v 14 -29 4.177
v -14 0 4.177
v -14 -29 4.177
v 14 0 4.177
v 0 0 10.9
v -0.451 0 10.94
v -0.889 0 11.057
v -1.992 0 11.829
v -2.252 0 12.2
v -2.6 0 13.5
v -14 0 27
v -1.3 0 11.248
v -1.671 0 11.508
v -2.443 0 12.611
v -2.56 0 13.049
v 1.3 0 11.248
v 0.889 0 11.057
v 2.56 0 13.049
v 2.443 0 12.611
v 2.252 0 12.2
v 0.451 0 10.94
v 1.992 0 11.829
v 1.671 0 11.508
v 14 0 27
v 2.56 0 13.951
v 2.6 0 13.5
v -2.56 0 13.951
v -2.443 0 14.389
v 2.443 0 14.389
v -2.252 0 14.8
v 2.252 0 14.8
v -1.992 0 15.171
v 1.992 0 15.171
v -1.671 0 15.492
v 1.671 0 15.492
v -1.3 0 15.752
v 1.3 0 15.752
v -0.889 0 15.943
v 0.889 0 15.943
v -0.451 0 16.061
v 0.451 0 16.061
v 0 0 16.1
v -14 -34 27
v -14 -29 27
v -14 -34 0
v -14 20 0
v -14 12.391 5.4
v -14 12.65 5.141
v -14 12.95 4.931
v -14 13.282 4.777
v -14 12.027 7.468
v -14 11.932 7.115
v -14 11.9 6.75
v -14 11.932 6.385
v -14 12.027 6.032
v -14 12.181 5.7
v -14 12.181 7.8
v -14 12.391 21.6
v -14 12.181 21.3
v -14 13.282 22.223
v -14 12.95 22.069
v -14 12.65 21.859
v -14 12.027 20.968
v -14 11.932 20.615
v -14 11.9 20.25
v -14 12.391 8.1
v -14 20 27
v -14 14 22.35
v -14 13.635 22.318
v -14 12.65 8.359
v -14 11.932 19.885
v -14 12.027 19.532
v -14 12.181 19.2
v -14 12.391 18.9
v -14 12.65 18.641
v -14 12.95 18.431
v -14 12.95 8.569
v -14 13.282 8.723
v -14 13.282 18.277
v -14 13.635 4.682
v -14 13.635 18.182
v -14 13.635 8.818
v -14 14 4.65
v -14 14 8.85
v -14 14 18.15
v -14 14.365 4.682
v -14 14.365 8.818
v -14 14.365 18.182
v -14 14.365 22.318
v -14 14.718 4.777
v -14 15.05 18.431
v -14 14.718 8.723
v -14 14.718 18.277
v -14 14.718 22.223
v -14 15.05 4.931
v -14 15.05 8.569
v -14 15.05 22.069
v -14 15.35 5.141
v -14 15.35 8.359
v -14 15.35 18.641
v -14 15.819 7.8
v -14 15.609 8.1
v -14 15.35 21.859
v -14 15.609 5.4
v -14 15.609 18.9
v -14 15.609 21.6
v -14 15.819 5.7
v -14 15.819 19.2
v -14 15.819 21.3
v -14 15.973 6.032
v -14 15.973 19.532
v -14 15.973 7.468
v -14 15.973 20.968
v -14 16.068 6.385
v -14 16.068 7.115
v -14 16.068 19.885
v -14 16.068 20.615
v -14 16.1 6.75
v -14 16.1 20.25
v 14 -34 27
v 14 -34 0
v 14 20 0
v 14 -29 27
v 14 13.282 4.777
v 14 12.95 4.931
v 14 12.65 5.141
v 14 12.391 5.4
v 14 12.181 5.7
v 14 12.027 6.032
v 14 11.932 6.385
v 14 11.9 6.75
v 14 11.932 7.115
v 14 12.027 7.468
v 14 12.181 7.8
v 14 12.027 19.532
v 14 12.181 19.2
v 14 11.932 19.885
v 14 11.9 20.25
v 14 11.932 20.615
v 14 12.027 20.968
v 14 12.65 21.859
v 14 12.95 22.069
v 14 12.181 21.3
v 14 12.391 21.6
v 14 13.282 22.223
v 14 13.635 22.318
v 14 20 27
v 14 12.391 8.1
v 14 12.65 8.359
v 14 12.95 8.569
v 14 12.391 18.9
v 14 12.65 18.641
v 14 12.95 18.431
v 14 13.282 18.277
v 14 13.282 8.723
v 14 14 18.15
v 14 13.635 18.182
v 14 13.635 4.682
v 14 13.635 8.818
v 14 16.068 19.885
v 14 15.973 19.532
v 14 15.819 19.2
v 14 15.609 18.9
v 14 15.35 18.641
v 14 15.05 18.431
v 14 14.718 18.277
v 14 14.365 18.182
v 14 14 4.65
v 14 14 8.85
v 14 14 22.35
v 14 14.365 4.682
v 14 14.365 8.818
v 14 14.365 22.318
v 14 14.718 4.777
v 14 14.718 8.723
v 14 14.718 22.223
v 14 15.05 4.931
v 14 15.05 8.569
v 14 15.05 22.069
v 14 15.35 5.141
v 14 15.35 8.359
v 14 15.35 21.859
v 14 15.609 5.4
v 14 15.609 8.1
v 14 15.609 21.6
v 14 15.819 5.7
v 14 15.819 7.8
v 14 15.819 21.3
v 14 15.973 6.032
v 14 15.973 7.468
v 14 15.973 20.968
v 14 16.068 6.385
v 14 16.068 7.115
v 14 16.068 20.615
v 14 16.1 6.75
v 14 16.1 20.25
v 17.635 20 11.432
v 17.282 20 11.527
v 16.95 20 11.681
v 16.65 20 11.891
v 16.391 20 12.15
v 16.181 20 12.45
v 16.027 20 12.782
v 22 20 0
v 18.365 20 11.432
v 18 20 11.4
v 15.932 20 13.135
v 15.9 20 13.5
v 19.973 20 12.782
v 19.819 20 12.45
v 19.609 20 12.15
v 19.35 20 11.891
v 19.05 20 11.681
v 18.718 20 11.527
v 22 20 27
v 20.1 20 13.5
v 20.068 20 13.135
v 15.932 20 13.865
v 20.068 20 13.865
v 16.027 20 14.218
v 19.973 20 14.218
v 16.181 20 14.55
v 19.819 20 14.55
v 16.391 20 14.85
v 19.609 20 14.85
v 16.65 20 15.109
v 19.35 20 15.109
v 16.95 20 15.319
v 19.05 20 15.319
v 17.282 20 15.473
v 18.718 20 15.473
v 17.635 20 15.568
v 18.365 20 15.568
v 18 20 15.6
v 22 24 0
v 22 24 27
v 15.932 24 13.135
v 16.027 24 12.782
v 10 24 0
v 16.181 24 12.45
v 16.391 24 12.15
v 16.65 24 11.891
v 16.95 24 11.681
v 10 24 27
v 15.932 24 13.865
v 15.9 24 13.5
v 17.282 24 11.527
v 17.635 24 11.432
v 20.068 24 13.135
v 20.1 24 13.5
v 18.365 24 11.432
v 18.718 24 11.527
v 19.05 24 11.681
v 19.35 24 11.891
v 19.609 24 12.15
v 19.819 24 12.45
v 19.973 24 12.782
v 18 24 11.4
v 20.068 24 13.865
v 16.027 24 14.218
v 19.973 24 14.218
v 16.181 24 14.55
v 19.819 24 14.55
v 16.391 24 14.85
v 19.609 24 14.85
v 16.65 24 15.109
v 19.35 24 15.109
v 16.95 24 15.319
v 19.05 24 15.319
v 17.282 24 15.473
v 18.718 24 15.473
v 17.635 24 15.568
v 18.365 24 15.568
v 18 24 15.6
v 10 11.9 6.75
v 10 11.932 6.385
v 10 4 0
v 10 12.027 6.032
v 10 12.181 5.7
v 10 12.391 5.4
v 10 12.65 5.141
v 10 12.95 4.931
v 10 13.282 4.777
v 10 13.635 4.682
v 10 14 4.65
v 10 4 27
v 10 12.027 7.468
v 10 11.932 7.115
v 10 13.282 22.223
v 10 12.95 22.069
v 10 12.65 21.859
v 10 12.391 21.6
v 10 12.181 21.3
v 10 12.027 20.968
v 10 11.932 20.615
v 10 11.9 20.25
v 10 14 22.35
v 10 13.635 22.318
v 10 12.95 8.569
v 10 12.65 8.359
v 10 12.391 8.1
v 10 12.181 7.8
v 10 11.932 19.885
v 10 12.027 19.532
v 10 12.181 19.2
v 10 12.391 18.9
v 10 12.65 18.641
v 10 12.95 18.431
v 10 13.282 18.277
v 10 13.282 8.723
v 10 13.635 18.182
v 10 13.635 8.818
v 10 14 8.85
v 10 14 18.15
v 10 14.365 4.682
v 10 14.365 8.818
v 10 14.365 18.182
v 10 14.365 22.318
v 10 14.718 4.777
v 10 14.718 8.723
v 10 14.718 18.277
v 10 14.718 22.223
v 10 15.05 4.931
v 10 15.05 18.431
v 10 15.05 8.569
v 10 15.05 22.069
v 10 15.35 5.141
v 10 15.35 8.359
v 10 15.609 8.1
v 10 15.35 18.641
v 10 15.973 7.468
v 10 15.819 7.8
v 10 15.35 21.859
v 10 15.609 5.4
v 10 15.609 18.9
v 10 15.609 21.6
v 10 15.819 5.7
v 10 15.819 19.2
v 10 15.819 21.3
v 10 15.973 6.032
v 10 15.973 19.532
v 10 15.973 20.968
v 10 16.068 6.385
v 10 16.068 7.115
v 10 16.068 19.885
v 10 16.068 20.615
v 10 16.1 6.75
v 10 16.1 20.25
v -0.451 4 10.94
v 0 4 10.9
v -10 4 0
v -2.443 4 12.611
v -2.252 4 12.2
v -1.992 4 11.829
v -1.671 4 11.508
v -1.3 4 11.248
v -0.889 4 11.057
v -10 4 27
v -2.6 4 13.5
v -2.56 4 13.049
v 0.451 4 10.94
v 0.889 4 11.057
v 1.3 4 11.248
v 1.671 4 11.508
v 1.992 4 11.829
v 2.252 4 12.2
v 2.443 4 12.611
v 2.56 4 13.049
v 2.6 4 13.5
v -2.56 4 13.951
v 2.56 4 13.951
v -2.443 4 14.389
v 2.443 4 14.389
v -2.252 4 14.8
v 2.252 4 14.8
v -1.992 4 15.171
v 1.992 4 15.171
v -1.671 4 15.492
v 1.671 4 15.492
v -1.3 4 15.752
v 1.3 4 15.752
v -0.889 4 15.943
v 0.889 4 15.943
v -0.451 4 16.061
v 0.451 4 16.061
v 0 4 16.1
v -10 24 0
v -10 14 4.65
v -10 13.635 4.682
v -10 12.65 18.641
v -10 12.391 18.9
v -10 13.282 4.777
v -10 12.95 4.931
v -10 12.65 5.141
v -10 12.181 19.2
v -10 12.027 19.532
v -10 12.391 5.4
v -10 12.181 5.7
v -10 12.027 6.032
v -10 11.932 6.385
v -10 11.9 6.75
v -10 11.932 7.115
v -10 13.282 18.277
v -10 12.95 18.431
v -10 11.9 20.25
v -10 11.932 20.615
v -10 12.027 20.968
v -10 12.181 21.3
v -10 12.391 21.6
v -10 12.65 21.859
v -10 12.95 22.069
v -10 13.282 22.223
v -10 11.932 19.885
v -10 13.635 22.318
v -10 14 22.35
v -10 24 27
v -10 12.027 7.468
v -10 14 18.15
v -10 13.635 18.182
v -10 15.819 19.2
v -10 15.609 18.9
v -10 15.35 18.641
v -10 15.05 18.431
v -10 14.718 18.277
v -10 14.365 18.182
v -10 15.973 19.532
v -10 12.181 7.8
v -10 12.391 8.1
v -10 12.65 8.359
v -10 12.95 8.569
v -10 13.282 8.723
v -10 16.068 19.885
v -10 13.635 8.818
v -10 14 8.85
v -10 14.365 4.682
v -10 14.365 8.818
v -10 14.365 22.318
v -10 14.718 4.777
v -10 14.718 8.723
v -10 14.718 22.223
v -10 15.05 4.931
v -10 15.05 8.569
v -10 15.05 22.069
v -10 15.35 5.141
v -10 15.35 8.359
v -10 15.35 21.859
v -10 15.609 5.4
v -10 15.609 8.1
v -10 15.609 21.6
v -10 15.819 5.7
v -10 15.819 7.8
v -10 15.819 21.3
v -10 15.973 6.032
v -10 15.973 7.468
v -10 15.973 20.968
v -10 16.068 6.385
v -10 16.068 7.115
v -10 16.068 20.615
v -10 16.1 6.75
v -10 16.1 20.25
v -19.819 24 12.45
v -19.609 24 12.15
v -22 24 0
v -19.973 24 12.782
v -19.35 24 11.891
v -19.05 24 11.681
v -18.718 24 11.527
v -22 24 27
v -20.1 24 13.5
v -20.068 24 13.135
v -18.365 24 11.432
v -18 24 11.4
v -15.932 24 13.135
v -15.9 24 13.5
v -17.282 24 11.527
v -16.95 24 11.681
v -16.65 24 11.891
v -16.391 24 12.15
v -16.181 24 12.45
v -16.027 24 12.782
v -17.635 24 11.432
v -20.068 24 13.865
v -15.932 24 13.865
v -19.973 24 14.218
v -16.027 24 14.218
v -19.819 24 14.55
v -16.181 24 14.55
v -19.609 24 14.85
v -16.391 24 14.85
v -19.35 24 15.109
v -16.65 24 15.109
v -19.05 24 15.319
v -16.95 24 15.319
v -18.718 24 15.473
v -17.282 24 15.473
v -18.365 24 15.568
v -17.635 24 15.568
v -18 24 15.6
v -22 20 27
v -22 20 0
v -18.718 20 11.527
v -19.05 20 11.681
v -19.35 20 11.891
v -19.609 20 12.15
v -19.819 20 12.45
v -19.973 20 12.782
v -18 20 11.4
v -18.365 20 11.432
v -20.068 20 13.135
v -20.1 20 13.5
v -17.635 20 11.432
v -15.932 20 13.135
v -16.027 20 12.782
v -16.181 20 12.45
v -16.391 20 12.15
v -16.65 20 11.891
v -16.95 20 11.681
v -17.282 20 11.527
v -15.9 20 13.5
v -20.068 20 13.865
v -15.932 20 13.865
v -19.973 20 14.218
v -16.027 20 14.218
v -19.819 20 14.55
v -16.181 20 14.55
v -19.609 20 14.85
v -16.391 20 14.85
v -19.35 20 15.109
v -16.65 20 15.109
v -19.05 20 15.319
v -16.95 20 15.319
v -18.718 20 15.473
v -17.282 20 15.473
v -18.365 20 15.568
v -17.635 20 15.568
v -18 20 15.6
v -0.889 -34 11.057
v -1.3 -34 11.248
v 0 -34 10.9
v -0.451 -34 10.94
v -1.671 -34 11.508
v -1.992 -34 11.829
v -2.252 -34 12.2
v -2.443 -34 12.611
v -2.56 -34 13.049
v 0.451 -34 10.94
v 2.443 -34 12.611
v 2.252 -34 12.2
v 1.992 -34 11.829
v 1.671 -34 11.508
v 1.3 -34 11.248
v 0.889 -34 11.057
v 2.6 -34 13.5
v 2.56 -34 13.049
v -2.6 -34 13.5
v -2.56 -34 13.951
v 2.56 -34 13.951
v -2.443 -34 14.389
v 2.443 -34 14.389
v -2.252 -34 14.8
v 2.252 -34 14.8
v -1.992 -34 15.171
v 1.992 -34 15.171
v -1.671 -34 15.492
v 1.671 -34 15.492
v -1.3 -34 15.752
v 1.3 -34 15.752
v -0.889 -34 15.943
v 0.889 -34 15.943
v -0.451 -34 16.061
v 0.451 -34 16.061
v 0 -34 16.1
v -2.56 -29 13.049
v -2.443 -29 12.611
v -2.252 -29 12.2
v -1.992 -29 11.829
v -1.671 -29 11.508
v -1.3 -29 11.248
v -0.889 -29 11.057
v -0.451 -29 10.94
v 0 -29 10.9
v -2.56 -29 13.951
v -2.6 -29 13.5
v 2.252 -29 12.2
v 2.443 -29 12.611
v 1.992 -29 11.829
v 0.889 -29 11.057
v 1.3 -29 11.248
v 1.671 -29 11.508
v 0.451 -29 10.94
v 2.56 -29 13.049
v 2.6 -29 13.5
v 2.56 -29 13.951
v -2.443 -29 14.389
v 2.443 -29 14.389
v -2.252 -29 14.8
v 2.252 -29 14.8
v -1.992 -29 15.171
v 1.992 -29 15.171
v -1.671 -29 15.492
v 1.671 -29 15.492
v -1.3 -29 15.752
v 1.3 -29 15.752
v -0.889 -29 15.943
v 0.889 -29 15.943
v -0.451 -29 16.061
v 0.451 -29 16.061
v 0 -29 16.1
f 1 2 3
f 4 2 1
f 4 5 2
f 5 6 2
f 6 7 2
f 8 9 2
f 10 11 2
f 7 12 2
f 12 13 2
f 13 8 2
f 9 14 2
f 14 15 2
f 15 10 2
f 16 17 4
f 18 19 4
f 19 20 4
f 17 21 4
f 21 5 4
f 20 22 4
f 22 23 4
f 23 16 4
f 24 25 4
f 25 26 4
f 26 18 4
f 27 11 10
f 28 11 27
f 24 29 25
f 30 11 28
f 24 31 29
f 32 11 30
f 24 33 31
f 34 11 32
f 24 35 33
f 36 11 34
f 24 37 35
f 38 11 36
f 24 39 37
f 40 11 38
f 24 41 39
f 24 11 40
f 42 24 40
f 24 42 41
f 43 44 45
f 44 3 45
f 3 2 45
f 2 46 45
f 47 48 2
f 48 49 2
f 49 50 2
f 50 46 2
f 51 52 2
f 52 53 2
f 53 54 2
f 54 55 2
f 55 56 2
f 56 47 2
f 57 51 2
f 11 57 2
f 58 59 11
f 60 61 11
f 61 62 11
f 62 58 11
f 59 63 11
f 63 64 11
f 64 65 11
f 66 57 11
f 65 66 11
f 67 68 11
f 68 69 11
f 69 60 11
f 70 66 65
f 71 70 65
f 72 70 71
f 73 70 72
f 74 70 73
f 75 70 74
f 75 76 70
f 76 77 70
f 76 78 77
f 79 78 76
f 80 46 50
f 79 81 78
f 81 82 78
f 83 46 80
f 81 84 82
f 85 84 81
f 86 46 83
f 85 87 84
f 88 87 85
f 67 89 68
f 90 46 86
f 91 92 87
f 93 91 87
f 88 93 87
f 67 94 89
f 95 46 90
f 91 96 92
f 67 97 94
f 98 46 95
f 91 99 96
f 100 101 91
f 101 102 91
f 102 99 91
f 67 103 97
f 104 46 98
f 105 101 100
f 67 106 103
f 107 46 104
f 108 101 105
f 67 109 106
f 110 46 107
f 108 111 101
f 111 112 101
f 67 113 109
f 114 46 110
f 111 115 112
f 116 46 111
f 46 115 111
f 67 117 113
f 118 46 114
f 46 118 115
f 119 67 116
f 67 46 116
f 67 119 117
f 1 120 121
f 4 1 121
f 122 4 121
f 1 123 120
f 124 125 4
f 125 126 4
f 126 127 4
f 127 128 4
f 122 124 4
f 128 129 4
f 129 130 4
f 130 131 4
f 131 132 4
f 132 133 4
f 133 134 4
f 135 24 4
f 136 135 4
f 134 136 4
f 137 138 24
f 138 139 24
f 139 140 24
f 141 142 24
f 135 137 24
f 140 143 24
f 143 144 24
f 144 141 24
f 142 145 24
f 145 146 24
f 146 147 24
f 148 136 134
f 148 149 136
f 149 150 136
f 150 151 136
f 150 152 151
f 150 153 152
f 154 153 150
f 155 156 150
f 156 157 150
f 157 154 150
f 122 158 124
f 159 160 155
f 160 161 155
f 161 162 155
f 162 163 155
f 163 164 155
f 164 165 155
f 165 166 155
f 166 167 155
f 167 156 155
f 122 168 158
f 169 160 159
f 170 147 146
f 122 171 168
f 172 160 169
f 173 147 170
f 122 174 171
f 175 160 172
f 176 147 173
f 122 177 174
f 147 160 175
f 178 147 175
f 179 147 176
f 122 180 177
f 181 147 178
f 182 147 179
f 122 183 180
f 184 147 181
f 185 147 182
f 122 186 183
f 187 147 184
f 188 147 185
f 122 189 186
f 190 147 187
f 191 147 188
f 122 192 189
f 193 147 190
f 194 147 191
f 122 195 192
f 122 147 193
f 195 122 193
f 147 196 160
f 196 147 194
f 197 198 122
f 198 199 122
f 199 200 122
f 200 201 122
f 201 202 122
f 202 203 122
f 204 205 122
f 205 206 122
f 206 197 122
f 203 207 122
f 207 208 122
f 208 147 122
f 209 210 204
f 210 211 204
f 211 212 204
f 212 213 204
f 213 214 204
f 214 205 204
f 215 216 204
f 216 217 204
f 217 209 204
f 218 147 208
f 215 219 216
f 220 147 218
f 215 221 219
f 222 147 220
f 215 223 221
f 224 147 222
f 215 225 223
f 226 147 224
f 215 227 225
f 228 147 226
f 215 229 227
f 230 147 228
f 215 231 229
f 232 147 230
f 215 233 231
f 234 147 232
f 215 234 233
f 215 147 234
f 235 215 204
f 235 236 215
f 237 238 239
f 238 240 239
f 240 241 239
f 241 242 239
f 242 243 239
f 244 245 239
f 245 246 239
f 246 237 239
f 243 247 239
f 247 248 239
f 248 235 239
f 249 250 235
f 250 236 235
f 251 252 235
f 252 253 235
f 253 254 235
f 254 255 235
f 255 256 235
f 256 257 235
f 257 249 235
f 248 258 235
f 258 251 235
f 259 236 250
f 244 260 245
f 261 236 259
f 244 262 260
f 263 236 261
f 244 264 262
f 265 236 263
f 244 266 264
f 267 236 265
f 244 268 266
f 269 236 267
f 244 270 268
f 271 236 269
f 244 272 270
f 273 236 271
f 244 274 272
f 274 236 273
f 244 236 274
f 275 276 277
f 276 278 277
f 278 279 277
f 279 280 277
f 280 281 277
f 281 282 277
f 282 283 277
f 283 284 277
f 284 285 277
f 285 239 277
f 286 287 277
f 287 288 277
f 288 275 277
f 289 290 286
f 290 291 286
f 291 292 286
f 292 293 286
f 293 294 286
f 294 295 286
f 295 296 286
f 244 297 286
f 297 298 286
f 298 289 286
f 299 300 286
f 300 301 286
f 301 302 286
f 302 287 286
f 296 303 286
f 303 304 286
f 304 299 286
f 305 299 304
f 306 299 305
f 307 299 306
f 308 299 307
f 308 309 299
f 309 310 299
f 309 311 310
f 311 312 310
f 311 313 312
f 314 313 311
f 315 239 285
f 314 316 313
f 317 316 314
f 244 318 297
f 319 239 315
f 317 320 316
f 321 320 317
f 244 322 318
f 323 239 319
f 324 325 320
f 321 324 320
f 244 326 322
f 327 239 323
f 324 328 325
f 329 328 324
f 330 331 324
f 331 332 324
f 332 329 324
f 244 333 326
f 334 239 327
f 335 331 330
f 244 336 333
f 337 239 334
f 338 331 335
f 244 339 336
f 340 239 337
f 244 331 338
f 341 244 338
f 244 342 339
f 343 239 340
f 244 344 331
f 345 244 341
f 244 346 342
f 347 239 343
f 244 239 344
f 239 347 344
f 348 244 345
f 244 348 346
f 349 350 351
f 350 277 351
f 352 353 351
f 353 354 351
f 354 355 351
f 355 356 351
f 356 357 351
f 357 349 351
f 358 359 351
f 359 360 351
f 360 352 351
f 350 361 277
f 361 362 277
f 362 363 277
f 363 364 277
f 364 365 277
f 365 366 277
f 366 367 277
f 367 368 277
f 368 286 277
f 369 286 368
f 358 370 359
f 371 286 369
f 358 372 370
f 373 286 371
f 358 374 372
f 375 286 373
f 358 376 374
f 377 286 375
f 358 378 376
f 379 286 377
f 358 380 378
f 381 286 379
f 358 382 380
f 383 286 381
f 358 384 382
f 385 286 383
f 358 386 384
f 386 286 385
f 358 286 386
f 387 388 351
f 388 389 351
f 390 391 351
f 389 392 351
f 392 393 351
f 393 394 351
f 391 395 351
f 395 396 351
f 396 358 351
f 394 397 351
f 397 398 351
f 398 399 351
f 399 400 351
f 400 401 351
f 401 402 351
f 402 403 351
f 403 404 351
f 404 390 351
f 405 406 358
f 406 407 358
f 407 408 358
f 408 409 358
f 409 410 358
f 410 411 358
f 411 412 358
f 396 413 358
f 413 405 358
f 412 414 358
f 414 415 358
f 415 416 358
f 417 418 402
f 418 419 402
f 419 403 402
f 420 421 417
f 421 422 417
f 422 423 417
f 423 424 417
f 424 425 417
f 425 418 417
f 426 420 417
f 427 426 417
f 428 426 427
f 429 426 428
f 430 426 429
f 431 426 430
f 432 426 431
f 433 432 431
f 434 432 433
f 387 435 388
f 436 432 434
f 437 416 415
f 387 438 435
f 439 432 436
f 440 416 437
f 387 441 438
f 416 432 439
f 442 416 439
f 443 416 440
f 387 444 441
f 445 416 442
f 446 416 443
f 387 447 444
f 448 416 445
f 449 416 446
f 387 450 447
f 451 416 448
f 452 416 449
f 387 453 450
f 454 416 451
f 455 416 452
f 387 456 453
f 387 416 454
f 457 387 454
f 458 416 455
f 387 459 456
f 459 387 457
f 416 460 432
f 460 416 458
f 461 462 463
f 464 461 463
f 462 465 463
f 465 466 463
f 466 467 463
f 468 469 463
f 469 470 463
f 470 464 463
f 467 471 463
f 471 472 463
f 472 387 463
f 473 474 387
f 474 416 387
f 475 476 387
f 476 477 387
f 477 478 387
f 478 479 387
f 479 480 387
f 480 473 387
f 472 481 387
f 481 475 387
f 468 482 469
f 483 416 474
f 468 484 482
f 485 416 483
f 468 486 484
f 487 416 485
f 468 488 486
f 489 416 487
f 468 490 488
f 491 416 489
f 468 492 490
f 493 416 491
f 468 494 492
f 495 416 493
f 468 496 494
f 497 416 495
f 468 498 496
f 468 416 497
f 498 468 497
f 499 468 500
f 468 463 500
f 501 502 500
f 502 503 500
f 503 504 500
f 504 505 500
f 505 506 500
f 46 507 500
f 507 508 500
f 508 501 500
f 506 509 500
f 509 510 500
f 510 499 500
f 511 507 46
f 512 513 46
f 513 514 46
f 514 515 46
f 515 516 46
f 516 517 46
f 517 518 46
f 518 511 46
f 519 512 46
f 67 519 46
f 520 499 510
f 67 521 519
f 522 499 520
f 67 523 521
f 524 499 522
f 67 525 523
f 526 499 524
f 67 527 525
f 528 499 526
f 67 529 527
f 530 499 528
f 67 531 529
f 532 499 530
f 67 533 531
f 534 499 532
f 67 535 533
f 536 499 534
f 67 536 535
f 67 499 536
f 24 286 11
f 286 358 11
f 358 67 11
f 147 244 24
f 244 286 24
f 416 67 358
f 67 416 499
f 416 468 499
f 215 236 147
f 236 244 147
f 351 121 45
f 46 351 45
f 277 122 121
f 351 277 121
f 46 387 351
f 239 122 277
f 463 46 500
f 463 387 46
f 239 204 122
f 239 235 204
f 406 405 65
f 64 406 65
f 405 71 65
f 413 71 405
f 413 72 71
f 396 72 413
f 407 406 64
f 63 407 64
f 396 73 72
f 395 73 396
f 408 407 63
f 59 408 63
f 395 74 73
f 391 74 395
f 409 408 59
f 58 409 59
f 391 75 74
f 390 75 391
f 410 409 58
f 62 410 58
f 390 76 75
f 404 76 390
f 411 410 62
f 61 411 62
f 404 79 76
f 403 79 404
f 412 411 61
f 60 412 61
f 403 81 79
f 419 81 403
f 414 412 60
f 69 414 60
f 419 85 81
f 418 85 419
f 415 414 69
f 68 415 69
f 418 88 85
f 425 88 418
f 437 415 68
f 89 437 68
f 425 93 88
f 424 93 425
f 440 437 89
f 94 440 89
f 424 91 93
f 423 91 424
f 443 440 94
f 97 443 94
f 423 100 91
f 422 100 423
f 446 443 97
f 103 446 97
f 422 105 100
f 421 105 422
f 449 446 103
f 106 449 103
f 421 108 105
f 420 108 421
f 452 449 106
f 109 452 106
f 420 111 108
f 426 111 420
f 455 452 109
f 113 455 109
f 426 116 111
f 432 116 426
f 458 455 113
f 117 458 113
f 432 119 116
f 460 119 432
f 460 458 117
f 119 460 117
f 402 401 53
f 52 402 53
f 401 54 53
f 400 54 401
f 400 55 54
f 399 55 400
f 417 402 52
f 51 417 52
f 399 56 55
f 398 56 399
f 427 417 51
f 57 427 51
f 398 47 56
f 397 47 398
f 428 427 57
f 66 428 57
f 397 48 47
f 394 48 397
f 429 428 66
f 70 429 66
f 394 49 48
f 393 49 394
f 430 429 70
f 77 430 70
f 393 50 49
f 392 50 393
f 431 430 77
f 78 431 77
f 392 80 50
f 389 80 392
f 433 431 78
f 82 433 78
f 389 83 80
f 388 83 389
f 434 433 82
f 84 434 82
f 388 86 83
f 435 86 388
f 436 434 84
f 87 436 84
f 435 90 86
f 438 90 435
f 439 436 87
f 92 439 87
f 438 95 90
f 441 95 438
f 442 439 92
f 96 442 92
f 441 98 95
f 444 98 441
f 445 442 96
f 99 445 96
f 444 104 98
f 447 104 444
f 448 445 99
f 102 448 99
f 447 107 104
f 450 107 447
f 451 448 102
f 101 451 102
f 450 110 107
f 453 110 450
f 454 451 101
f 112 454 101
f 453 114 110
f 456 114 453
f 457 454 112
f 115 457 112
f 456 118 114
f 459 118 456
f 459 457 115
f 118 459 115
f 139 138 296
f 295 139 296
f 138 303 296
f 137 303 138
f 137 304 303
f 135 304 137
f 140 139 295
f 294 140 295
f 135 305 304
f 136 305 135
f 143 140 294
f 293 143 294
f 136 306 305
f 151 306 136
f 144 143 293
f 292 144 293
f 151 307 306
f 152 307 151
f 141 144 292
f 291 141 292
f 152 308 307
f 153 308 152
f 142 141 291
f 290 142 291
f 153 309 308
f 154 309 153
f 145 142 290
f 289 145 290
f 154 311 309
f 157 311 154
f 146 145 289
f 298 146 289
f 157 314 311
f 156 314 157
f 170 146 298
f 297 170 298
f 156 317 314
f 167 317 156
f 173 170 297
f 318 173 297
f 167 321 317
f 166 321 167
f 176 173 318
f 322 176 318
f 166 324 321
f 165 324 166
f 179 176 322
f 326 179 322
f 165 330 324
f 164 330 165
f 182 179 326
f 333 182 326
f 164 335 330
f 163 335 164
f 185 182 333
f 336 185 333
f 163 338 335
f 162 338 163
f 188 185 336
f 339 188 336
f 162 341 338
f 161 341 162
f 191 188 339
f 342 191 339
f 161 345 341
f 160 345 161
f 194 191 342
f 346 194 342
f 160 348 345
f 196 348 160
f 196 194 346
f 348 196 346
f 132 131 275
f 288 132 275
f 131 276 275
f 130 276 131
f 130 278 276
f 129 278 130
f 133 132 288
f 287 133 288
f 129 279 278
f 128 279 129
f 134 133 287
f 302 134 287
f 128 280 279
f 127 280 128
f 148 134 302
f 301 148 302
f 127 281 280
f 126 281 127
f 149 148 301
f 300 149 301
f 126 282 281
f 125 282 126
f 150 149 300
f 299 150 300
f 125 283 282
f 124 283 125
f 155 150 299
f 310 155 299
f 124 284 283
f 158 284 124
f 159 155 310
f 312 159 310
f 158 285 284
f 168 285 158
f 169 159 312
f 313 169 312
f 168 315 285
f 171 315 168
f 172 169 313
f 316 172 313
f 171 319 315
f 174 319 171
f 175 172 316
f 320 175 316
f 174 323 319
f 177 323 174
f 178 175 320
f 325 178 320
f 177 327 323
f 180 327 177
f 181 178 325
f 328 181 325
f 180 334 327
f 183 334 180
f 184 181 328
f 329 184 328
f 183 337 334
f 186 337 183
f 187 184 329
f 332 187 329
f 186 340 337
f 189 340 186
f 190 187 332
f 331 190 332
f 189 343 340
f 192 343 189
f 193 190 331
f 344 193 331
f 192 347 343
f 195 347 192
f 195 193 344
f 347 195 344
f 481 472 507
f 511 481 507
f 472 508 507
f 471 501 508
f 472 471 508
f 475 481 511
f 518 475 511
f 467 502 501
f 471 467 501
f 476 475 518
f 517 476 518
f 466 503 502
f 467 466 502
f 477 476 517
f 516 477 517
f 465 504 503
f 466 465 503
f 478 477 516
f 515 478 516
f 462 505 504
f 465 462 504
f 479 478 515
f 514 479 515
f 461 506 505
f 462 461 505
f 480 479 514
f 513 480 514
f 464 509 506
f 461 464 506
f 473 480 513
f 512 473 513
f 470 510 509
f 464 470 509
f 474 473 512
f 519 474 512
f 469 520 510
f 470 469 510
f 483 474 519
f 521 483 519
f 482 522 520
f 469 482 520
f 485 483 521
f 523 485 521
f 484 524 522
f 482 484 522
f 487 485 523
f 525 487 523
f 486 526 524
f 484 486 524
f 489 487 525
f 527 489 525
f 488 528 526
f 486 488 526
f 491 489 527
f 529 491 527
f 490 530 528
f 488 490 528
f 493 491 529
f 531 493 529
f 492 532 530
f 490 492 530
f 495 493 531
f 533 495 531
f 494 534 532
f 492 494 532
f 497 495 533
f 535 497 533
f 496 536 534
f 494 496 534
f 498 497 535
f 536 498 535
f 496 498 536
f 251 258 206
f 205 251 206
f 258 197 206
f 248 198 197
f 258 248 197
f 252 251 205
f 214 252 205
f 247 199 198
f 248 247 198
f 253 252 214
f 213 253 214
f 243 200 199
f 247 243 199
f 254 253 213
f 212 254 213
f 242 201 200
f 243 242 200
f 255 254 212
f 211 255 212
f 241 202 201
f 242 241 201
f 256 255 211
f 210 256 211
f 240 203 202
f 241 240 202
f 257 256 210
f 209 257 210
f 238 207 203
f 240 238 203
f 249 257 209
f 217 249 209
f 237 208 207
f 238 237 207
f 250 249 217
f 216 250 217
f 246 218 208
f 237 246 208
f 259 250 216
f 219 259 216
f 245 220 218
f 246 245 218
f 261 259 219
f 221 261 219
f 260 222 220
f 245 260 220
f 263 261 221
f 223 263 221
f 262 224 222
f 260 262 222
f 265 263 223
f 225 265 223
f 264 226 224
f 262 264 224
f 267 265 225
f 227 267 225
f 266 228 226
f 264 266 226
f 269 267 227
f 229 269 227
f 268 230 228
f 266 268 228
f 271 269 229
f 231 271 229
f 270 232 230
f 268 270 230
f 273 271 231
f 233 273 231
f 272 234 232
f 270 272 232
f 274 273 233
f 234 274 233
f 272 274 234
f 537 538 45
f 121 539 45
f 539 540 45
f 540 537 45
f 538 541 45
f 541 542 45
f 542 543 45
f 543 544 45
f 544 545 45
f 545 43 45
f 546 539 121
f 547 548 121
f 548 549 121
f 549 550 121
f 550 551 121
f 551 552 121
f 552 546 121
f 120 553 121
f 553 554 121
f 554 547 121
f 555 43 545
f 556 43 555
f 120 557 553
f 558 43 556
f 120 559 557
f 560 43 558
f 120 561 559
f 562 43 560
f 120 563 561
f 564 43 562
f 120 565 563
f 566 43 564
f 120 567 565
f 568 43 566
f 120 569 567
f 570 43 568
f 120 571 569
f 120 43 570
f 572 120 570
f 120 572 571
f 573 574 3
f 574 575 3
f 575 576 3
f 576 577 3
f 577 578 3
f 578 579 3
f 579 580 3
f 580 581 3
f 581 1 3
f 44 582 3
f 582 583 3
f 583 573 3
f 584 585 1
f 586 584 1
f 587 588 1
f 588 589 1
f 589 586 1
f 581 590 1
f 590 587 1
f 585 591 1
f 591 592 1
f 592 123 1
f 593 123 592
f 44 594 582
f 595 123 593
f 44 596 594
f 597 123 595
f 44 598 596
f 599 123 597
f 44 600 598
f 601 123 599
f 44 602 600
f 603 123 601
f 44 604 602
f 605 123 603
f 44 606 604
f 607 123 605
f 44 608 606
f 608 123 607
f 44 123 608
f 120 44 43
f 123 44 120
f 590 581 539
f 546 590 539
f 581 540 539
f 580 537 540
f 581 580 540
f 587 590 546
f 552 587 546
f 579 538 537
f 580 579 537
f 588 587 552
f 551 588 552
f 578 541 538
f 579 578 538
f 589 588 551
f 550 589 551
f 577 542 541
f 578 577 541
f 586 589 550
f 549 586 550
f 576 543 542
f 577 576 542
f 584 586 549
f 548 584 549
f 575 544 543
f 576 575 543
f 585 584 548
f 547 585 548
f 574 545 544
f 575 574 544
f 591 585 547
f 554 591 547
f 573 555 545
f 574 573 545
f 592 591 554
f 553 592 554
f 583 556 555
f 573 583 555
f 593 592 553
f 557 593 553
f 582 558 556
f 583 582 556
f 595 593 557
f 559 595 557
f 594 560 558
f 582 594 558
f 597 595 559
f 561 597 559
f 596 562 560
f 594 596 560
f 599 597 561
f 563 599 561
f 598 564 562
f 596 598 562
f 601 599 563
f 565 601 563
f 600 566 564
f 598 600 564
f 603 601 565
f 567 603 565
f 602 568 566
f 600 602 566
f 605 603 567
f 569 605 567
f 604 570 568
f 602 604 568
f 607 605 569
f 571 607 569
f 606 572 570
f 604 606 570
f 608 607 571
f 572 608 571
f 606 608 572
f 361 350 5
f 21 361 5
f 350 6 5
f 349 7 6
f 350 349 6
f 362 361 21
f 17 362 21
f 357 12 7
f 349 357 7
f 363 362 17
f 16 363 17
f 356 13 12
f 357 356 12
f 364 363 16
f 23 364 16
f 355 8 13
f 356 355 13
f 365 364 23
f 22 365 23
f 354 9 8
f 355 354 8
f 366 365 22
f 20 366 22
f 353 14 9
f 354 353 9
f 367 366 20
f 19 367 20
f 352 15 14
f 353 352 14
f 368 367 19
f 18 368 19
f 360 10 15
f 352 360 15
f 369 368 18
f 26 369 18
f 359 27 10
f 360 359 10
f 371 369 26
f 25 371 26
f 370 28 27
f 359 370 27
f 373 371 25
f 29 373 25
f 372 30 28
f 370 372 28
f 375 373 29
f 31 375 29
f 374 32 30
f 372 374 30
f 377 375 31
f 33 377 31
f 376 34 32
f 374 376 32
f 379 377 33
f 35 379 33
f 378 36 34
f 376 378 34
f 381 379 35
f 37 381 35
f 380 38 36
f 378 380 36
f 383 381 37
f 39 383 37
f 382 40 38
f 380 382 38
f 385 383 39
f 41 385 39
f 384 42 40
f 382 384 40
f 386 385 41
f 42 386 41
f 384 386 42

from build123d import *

# Parameters (mm, degrees)
BOSS_EXTRUDE1_DEPTH = 27
SKETCH2_R           = 2.1
CUT_EXTRUDE1_DEPTH  = 52
SKETCH3_R           = 2.1
CUT_EXTRUDE2_DEPTH  = 41.162171256
SKETCH5_W           = 28
SKETCH5_H           = 4.176671075
BOSS_EXTRUDE2_DEPTH = 34
SKETCH6_W           = 28
SKETCH6_H           = 5
BOSS_EXTRUDE3_DEPTH = 22.823328925
SKETCH7_R           = 2.6
CUT_EXTRUDE3_DEPTH  = 68.653529103


with BuildPart() as part:
    # Sketch1 → Boss-Extrude1 (new body)
    with BuildSketch(Plane.XY):
        Polygon((-14, 0), (14, 0), (14, 20), (22, 20), (22, 24), (10, 24), (10, 4), (-10, 4), (-10, 24), (-22, 24), (-22, 20), (-14, 20), align=None)
    extrude(amount=BOSS_EXTRUDE1_DEPTH)

    # Sketch2 → Cut-Extrude1 (cut, through all)
    with BuildSketch(Plane.ZY.offset(14)):
        with Locations(Location((6.75, 14, 0), (0, 0, 270))):
            Circle(SKETCH2_R)
        with Locations(Location((20.25, 14, 0), (0, 0, 270))):
            Circle(SKETCH2_R)
    extrude(amount=-CUT_EXTRUDE1_DEPTH, mode=Mode.SUBTRACT)

    # Sketch3 → Cut-Extrude2 (cut, through all)
    with BuildSketch(Plane.XZ.offset(-20)):
        with Locations(Location((-18, 13.5, 0), (0, 0, 270))):
            Circle(SKETCH3_R)
        with Locations(Location((18, 13.5, 0), (0, 0, 270))):
            Circle(SKETCH3_R)
    extrude(amount=-CUT_EXTRUDE2_DEPTH, mode=Mode.SUBTRACT)

    # Sketch5 → Boss-Extrude2 (add)
    with BuildSketch(Plane.XZ):
        with Locations((0, 2.088335538)):
            Rectangle(SKETCH5_W, SKETCH5_H)
    extrude(amount=BOSS_EXTRUDE2_DEPTH)

    # Sketch6 → Boss-Extrude3 (add)
    with BuildSketch(Plane.XY.offset(4.176671075)):
        with Locations((0, -31.5)):
            Rectangle(SKETCH6_W, SKETCH6_H)
    extrude(amount=BOSS_EXTRUDE3_DEPTH)

    # Sketch7 → Cut-Extrude3 (cut, through all)
    with BuildSketch(Plane.XZ.offset(34)):
        with Locations(Location((0, 13.5, 0), (0, 0, 270))):
            Circle(SKETCH7_R)
    extrude(amount=-CUT_EXTRUDE3_DEPTH, mode=Mode.SUBTRACT)


solid = part.part
